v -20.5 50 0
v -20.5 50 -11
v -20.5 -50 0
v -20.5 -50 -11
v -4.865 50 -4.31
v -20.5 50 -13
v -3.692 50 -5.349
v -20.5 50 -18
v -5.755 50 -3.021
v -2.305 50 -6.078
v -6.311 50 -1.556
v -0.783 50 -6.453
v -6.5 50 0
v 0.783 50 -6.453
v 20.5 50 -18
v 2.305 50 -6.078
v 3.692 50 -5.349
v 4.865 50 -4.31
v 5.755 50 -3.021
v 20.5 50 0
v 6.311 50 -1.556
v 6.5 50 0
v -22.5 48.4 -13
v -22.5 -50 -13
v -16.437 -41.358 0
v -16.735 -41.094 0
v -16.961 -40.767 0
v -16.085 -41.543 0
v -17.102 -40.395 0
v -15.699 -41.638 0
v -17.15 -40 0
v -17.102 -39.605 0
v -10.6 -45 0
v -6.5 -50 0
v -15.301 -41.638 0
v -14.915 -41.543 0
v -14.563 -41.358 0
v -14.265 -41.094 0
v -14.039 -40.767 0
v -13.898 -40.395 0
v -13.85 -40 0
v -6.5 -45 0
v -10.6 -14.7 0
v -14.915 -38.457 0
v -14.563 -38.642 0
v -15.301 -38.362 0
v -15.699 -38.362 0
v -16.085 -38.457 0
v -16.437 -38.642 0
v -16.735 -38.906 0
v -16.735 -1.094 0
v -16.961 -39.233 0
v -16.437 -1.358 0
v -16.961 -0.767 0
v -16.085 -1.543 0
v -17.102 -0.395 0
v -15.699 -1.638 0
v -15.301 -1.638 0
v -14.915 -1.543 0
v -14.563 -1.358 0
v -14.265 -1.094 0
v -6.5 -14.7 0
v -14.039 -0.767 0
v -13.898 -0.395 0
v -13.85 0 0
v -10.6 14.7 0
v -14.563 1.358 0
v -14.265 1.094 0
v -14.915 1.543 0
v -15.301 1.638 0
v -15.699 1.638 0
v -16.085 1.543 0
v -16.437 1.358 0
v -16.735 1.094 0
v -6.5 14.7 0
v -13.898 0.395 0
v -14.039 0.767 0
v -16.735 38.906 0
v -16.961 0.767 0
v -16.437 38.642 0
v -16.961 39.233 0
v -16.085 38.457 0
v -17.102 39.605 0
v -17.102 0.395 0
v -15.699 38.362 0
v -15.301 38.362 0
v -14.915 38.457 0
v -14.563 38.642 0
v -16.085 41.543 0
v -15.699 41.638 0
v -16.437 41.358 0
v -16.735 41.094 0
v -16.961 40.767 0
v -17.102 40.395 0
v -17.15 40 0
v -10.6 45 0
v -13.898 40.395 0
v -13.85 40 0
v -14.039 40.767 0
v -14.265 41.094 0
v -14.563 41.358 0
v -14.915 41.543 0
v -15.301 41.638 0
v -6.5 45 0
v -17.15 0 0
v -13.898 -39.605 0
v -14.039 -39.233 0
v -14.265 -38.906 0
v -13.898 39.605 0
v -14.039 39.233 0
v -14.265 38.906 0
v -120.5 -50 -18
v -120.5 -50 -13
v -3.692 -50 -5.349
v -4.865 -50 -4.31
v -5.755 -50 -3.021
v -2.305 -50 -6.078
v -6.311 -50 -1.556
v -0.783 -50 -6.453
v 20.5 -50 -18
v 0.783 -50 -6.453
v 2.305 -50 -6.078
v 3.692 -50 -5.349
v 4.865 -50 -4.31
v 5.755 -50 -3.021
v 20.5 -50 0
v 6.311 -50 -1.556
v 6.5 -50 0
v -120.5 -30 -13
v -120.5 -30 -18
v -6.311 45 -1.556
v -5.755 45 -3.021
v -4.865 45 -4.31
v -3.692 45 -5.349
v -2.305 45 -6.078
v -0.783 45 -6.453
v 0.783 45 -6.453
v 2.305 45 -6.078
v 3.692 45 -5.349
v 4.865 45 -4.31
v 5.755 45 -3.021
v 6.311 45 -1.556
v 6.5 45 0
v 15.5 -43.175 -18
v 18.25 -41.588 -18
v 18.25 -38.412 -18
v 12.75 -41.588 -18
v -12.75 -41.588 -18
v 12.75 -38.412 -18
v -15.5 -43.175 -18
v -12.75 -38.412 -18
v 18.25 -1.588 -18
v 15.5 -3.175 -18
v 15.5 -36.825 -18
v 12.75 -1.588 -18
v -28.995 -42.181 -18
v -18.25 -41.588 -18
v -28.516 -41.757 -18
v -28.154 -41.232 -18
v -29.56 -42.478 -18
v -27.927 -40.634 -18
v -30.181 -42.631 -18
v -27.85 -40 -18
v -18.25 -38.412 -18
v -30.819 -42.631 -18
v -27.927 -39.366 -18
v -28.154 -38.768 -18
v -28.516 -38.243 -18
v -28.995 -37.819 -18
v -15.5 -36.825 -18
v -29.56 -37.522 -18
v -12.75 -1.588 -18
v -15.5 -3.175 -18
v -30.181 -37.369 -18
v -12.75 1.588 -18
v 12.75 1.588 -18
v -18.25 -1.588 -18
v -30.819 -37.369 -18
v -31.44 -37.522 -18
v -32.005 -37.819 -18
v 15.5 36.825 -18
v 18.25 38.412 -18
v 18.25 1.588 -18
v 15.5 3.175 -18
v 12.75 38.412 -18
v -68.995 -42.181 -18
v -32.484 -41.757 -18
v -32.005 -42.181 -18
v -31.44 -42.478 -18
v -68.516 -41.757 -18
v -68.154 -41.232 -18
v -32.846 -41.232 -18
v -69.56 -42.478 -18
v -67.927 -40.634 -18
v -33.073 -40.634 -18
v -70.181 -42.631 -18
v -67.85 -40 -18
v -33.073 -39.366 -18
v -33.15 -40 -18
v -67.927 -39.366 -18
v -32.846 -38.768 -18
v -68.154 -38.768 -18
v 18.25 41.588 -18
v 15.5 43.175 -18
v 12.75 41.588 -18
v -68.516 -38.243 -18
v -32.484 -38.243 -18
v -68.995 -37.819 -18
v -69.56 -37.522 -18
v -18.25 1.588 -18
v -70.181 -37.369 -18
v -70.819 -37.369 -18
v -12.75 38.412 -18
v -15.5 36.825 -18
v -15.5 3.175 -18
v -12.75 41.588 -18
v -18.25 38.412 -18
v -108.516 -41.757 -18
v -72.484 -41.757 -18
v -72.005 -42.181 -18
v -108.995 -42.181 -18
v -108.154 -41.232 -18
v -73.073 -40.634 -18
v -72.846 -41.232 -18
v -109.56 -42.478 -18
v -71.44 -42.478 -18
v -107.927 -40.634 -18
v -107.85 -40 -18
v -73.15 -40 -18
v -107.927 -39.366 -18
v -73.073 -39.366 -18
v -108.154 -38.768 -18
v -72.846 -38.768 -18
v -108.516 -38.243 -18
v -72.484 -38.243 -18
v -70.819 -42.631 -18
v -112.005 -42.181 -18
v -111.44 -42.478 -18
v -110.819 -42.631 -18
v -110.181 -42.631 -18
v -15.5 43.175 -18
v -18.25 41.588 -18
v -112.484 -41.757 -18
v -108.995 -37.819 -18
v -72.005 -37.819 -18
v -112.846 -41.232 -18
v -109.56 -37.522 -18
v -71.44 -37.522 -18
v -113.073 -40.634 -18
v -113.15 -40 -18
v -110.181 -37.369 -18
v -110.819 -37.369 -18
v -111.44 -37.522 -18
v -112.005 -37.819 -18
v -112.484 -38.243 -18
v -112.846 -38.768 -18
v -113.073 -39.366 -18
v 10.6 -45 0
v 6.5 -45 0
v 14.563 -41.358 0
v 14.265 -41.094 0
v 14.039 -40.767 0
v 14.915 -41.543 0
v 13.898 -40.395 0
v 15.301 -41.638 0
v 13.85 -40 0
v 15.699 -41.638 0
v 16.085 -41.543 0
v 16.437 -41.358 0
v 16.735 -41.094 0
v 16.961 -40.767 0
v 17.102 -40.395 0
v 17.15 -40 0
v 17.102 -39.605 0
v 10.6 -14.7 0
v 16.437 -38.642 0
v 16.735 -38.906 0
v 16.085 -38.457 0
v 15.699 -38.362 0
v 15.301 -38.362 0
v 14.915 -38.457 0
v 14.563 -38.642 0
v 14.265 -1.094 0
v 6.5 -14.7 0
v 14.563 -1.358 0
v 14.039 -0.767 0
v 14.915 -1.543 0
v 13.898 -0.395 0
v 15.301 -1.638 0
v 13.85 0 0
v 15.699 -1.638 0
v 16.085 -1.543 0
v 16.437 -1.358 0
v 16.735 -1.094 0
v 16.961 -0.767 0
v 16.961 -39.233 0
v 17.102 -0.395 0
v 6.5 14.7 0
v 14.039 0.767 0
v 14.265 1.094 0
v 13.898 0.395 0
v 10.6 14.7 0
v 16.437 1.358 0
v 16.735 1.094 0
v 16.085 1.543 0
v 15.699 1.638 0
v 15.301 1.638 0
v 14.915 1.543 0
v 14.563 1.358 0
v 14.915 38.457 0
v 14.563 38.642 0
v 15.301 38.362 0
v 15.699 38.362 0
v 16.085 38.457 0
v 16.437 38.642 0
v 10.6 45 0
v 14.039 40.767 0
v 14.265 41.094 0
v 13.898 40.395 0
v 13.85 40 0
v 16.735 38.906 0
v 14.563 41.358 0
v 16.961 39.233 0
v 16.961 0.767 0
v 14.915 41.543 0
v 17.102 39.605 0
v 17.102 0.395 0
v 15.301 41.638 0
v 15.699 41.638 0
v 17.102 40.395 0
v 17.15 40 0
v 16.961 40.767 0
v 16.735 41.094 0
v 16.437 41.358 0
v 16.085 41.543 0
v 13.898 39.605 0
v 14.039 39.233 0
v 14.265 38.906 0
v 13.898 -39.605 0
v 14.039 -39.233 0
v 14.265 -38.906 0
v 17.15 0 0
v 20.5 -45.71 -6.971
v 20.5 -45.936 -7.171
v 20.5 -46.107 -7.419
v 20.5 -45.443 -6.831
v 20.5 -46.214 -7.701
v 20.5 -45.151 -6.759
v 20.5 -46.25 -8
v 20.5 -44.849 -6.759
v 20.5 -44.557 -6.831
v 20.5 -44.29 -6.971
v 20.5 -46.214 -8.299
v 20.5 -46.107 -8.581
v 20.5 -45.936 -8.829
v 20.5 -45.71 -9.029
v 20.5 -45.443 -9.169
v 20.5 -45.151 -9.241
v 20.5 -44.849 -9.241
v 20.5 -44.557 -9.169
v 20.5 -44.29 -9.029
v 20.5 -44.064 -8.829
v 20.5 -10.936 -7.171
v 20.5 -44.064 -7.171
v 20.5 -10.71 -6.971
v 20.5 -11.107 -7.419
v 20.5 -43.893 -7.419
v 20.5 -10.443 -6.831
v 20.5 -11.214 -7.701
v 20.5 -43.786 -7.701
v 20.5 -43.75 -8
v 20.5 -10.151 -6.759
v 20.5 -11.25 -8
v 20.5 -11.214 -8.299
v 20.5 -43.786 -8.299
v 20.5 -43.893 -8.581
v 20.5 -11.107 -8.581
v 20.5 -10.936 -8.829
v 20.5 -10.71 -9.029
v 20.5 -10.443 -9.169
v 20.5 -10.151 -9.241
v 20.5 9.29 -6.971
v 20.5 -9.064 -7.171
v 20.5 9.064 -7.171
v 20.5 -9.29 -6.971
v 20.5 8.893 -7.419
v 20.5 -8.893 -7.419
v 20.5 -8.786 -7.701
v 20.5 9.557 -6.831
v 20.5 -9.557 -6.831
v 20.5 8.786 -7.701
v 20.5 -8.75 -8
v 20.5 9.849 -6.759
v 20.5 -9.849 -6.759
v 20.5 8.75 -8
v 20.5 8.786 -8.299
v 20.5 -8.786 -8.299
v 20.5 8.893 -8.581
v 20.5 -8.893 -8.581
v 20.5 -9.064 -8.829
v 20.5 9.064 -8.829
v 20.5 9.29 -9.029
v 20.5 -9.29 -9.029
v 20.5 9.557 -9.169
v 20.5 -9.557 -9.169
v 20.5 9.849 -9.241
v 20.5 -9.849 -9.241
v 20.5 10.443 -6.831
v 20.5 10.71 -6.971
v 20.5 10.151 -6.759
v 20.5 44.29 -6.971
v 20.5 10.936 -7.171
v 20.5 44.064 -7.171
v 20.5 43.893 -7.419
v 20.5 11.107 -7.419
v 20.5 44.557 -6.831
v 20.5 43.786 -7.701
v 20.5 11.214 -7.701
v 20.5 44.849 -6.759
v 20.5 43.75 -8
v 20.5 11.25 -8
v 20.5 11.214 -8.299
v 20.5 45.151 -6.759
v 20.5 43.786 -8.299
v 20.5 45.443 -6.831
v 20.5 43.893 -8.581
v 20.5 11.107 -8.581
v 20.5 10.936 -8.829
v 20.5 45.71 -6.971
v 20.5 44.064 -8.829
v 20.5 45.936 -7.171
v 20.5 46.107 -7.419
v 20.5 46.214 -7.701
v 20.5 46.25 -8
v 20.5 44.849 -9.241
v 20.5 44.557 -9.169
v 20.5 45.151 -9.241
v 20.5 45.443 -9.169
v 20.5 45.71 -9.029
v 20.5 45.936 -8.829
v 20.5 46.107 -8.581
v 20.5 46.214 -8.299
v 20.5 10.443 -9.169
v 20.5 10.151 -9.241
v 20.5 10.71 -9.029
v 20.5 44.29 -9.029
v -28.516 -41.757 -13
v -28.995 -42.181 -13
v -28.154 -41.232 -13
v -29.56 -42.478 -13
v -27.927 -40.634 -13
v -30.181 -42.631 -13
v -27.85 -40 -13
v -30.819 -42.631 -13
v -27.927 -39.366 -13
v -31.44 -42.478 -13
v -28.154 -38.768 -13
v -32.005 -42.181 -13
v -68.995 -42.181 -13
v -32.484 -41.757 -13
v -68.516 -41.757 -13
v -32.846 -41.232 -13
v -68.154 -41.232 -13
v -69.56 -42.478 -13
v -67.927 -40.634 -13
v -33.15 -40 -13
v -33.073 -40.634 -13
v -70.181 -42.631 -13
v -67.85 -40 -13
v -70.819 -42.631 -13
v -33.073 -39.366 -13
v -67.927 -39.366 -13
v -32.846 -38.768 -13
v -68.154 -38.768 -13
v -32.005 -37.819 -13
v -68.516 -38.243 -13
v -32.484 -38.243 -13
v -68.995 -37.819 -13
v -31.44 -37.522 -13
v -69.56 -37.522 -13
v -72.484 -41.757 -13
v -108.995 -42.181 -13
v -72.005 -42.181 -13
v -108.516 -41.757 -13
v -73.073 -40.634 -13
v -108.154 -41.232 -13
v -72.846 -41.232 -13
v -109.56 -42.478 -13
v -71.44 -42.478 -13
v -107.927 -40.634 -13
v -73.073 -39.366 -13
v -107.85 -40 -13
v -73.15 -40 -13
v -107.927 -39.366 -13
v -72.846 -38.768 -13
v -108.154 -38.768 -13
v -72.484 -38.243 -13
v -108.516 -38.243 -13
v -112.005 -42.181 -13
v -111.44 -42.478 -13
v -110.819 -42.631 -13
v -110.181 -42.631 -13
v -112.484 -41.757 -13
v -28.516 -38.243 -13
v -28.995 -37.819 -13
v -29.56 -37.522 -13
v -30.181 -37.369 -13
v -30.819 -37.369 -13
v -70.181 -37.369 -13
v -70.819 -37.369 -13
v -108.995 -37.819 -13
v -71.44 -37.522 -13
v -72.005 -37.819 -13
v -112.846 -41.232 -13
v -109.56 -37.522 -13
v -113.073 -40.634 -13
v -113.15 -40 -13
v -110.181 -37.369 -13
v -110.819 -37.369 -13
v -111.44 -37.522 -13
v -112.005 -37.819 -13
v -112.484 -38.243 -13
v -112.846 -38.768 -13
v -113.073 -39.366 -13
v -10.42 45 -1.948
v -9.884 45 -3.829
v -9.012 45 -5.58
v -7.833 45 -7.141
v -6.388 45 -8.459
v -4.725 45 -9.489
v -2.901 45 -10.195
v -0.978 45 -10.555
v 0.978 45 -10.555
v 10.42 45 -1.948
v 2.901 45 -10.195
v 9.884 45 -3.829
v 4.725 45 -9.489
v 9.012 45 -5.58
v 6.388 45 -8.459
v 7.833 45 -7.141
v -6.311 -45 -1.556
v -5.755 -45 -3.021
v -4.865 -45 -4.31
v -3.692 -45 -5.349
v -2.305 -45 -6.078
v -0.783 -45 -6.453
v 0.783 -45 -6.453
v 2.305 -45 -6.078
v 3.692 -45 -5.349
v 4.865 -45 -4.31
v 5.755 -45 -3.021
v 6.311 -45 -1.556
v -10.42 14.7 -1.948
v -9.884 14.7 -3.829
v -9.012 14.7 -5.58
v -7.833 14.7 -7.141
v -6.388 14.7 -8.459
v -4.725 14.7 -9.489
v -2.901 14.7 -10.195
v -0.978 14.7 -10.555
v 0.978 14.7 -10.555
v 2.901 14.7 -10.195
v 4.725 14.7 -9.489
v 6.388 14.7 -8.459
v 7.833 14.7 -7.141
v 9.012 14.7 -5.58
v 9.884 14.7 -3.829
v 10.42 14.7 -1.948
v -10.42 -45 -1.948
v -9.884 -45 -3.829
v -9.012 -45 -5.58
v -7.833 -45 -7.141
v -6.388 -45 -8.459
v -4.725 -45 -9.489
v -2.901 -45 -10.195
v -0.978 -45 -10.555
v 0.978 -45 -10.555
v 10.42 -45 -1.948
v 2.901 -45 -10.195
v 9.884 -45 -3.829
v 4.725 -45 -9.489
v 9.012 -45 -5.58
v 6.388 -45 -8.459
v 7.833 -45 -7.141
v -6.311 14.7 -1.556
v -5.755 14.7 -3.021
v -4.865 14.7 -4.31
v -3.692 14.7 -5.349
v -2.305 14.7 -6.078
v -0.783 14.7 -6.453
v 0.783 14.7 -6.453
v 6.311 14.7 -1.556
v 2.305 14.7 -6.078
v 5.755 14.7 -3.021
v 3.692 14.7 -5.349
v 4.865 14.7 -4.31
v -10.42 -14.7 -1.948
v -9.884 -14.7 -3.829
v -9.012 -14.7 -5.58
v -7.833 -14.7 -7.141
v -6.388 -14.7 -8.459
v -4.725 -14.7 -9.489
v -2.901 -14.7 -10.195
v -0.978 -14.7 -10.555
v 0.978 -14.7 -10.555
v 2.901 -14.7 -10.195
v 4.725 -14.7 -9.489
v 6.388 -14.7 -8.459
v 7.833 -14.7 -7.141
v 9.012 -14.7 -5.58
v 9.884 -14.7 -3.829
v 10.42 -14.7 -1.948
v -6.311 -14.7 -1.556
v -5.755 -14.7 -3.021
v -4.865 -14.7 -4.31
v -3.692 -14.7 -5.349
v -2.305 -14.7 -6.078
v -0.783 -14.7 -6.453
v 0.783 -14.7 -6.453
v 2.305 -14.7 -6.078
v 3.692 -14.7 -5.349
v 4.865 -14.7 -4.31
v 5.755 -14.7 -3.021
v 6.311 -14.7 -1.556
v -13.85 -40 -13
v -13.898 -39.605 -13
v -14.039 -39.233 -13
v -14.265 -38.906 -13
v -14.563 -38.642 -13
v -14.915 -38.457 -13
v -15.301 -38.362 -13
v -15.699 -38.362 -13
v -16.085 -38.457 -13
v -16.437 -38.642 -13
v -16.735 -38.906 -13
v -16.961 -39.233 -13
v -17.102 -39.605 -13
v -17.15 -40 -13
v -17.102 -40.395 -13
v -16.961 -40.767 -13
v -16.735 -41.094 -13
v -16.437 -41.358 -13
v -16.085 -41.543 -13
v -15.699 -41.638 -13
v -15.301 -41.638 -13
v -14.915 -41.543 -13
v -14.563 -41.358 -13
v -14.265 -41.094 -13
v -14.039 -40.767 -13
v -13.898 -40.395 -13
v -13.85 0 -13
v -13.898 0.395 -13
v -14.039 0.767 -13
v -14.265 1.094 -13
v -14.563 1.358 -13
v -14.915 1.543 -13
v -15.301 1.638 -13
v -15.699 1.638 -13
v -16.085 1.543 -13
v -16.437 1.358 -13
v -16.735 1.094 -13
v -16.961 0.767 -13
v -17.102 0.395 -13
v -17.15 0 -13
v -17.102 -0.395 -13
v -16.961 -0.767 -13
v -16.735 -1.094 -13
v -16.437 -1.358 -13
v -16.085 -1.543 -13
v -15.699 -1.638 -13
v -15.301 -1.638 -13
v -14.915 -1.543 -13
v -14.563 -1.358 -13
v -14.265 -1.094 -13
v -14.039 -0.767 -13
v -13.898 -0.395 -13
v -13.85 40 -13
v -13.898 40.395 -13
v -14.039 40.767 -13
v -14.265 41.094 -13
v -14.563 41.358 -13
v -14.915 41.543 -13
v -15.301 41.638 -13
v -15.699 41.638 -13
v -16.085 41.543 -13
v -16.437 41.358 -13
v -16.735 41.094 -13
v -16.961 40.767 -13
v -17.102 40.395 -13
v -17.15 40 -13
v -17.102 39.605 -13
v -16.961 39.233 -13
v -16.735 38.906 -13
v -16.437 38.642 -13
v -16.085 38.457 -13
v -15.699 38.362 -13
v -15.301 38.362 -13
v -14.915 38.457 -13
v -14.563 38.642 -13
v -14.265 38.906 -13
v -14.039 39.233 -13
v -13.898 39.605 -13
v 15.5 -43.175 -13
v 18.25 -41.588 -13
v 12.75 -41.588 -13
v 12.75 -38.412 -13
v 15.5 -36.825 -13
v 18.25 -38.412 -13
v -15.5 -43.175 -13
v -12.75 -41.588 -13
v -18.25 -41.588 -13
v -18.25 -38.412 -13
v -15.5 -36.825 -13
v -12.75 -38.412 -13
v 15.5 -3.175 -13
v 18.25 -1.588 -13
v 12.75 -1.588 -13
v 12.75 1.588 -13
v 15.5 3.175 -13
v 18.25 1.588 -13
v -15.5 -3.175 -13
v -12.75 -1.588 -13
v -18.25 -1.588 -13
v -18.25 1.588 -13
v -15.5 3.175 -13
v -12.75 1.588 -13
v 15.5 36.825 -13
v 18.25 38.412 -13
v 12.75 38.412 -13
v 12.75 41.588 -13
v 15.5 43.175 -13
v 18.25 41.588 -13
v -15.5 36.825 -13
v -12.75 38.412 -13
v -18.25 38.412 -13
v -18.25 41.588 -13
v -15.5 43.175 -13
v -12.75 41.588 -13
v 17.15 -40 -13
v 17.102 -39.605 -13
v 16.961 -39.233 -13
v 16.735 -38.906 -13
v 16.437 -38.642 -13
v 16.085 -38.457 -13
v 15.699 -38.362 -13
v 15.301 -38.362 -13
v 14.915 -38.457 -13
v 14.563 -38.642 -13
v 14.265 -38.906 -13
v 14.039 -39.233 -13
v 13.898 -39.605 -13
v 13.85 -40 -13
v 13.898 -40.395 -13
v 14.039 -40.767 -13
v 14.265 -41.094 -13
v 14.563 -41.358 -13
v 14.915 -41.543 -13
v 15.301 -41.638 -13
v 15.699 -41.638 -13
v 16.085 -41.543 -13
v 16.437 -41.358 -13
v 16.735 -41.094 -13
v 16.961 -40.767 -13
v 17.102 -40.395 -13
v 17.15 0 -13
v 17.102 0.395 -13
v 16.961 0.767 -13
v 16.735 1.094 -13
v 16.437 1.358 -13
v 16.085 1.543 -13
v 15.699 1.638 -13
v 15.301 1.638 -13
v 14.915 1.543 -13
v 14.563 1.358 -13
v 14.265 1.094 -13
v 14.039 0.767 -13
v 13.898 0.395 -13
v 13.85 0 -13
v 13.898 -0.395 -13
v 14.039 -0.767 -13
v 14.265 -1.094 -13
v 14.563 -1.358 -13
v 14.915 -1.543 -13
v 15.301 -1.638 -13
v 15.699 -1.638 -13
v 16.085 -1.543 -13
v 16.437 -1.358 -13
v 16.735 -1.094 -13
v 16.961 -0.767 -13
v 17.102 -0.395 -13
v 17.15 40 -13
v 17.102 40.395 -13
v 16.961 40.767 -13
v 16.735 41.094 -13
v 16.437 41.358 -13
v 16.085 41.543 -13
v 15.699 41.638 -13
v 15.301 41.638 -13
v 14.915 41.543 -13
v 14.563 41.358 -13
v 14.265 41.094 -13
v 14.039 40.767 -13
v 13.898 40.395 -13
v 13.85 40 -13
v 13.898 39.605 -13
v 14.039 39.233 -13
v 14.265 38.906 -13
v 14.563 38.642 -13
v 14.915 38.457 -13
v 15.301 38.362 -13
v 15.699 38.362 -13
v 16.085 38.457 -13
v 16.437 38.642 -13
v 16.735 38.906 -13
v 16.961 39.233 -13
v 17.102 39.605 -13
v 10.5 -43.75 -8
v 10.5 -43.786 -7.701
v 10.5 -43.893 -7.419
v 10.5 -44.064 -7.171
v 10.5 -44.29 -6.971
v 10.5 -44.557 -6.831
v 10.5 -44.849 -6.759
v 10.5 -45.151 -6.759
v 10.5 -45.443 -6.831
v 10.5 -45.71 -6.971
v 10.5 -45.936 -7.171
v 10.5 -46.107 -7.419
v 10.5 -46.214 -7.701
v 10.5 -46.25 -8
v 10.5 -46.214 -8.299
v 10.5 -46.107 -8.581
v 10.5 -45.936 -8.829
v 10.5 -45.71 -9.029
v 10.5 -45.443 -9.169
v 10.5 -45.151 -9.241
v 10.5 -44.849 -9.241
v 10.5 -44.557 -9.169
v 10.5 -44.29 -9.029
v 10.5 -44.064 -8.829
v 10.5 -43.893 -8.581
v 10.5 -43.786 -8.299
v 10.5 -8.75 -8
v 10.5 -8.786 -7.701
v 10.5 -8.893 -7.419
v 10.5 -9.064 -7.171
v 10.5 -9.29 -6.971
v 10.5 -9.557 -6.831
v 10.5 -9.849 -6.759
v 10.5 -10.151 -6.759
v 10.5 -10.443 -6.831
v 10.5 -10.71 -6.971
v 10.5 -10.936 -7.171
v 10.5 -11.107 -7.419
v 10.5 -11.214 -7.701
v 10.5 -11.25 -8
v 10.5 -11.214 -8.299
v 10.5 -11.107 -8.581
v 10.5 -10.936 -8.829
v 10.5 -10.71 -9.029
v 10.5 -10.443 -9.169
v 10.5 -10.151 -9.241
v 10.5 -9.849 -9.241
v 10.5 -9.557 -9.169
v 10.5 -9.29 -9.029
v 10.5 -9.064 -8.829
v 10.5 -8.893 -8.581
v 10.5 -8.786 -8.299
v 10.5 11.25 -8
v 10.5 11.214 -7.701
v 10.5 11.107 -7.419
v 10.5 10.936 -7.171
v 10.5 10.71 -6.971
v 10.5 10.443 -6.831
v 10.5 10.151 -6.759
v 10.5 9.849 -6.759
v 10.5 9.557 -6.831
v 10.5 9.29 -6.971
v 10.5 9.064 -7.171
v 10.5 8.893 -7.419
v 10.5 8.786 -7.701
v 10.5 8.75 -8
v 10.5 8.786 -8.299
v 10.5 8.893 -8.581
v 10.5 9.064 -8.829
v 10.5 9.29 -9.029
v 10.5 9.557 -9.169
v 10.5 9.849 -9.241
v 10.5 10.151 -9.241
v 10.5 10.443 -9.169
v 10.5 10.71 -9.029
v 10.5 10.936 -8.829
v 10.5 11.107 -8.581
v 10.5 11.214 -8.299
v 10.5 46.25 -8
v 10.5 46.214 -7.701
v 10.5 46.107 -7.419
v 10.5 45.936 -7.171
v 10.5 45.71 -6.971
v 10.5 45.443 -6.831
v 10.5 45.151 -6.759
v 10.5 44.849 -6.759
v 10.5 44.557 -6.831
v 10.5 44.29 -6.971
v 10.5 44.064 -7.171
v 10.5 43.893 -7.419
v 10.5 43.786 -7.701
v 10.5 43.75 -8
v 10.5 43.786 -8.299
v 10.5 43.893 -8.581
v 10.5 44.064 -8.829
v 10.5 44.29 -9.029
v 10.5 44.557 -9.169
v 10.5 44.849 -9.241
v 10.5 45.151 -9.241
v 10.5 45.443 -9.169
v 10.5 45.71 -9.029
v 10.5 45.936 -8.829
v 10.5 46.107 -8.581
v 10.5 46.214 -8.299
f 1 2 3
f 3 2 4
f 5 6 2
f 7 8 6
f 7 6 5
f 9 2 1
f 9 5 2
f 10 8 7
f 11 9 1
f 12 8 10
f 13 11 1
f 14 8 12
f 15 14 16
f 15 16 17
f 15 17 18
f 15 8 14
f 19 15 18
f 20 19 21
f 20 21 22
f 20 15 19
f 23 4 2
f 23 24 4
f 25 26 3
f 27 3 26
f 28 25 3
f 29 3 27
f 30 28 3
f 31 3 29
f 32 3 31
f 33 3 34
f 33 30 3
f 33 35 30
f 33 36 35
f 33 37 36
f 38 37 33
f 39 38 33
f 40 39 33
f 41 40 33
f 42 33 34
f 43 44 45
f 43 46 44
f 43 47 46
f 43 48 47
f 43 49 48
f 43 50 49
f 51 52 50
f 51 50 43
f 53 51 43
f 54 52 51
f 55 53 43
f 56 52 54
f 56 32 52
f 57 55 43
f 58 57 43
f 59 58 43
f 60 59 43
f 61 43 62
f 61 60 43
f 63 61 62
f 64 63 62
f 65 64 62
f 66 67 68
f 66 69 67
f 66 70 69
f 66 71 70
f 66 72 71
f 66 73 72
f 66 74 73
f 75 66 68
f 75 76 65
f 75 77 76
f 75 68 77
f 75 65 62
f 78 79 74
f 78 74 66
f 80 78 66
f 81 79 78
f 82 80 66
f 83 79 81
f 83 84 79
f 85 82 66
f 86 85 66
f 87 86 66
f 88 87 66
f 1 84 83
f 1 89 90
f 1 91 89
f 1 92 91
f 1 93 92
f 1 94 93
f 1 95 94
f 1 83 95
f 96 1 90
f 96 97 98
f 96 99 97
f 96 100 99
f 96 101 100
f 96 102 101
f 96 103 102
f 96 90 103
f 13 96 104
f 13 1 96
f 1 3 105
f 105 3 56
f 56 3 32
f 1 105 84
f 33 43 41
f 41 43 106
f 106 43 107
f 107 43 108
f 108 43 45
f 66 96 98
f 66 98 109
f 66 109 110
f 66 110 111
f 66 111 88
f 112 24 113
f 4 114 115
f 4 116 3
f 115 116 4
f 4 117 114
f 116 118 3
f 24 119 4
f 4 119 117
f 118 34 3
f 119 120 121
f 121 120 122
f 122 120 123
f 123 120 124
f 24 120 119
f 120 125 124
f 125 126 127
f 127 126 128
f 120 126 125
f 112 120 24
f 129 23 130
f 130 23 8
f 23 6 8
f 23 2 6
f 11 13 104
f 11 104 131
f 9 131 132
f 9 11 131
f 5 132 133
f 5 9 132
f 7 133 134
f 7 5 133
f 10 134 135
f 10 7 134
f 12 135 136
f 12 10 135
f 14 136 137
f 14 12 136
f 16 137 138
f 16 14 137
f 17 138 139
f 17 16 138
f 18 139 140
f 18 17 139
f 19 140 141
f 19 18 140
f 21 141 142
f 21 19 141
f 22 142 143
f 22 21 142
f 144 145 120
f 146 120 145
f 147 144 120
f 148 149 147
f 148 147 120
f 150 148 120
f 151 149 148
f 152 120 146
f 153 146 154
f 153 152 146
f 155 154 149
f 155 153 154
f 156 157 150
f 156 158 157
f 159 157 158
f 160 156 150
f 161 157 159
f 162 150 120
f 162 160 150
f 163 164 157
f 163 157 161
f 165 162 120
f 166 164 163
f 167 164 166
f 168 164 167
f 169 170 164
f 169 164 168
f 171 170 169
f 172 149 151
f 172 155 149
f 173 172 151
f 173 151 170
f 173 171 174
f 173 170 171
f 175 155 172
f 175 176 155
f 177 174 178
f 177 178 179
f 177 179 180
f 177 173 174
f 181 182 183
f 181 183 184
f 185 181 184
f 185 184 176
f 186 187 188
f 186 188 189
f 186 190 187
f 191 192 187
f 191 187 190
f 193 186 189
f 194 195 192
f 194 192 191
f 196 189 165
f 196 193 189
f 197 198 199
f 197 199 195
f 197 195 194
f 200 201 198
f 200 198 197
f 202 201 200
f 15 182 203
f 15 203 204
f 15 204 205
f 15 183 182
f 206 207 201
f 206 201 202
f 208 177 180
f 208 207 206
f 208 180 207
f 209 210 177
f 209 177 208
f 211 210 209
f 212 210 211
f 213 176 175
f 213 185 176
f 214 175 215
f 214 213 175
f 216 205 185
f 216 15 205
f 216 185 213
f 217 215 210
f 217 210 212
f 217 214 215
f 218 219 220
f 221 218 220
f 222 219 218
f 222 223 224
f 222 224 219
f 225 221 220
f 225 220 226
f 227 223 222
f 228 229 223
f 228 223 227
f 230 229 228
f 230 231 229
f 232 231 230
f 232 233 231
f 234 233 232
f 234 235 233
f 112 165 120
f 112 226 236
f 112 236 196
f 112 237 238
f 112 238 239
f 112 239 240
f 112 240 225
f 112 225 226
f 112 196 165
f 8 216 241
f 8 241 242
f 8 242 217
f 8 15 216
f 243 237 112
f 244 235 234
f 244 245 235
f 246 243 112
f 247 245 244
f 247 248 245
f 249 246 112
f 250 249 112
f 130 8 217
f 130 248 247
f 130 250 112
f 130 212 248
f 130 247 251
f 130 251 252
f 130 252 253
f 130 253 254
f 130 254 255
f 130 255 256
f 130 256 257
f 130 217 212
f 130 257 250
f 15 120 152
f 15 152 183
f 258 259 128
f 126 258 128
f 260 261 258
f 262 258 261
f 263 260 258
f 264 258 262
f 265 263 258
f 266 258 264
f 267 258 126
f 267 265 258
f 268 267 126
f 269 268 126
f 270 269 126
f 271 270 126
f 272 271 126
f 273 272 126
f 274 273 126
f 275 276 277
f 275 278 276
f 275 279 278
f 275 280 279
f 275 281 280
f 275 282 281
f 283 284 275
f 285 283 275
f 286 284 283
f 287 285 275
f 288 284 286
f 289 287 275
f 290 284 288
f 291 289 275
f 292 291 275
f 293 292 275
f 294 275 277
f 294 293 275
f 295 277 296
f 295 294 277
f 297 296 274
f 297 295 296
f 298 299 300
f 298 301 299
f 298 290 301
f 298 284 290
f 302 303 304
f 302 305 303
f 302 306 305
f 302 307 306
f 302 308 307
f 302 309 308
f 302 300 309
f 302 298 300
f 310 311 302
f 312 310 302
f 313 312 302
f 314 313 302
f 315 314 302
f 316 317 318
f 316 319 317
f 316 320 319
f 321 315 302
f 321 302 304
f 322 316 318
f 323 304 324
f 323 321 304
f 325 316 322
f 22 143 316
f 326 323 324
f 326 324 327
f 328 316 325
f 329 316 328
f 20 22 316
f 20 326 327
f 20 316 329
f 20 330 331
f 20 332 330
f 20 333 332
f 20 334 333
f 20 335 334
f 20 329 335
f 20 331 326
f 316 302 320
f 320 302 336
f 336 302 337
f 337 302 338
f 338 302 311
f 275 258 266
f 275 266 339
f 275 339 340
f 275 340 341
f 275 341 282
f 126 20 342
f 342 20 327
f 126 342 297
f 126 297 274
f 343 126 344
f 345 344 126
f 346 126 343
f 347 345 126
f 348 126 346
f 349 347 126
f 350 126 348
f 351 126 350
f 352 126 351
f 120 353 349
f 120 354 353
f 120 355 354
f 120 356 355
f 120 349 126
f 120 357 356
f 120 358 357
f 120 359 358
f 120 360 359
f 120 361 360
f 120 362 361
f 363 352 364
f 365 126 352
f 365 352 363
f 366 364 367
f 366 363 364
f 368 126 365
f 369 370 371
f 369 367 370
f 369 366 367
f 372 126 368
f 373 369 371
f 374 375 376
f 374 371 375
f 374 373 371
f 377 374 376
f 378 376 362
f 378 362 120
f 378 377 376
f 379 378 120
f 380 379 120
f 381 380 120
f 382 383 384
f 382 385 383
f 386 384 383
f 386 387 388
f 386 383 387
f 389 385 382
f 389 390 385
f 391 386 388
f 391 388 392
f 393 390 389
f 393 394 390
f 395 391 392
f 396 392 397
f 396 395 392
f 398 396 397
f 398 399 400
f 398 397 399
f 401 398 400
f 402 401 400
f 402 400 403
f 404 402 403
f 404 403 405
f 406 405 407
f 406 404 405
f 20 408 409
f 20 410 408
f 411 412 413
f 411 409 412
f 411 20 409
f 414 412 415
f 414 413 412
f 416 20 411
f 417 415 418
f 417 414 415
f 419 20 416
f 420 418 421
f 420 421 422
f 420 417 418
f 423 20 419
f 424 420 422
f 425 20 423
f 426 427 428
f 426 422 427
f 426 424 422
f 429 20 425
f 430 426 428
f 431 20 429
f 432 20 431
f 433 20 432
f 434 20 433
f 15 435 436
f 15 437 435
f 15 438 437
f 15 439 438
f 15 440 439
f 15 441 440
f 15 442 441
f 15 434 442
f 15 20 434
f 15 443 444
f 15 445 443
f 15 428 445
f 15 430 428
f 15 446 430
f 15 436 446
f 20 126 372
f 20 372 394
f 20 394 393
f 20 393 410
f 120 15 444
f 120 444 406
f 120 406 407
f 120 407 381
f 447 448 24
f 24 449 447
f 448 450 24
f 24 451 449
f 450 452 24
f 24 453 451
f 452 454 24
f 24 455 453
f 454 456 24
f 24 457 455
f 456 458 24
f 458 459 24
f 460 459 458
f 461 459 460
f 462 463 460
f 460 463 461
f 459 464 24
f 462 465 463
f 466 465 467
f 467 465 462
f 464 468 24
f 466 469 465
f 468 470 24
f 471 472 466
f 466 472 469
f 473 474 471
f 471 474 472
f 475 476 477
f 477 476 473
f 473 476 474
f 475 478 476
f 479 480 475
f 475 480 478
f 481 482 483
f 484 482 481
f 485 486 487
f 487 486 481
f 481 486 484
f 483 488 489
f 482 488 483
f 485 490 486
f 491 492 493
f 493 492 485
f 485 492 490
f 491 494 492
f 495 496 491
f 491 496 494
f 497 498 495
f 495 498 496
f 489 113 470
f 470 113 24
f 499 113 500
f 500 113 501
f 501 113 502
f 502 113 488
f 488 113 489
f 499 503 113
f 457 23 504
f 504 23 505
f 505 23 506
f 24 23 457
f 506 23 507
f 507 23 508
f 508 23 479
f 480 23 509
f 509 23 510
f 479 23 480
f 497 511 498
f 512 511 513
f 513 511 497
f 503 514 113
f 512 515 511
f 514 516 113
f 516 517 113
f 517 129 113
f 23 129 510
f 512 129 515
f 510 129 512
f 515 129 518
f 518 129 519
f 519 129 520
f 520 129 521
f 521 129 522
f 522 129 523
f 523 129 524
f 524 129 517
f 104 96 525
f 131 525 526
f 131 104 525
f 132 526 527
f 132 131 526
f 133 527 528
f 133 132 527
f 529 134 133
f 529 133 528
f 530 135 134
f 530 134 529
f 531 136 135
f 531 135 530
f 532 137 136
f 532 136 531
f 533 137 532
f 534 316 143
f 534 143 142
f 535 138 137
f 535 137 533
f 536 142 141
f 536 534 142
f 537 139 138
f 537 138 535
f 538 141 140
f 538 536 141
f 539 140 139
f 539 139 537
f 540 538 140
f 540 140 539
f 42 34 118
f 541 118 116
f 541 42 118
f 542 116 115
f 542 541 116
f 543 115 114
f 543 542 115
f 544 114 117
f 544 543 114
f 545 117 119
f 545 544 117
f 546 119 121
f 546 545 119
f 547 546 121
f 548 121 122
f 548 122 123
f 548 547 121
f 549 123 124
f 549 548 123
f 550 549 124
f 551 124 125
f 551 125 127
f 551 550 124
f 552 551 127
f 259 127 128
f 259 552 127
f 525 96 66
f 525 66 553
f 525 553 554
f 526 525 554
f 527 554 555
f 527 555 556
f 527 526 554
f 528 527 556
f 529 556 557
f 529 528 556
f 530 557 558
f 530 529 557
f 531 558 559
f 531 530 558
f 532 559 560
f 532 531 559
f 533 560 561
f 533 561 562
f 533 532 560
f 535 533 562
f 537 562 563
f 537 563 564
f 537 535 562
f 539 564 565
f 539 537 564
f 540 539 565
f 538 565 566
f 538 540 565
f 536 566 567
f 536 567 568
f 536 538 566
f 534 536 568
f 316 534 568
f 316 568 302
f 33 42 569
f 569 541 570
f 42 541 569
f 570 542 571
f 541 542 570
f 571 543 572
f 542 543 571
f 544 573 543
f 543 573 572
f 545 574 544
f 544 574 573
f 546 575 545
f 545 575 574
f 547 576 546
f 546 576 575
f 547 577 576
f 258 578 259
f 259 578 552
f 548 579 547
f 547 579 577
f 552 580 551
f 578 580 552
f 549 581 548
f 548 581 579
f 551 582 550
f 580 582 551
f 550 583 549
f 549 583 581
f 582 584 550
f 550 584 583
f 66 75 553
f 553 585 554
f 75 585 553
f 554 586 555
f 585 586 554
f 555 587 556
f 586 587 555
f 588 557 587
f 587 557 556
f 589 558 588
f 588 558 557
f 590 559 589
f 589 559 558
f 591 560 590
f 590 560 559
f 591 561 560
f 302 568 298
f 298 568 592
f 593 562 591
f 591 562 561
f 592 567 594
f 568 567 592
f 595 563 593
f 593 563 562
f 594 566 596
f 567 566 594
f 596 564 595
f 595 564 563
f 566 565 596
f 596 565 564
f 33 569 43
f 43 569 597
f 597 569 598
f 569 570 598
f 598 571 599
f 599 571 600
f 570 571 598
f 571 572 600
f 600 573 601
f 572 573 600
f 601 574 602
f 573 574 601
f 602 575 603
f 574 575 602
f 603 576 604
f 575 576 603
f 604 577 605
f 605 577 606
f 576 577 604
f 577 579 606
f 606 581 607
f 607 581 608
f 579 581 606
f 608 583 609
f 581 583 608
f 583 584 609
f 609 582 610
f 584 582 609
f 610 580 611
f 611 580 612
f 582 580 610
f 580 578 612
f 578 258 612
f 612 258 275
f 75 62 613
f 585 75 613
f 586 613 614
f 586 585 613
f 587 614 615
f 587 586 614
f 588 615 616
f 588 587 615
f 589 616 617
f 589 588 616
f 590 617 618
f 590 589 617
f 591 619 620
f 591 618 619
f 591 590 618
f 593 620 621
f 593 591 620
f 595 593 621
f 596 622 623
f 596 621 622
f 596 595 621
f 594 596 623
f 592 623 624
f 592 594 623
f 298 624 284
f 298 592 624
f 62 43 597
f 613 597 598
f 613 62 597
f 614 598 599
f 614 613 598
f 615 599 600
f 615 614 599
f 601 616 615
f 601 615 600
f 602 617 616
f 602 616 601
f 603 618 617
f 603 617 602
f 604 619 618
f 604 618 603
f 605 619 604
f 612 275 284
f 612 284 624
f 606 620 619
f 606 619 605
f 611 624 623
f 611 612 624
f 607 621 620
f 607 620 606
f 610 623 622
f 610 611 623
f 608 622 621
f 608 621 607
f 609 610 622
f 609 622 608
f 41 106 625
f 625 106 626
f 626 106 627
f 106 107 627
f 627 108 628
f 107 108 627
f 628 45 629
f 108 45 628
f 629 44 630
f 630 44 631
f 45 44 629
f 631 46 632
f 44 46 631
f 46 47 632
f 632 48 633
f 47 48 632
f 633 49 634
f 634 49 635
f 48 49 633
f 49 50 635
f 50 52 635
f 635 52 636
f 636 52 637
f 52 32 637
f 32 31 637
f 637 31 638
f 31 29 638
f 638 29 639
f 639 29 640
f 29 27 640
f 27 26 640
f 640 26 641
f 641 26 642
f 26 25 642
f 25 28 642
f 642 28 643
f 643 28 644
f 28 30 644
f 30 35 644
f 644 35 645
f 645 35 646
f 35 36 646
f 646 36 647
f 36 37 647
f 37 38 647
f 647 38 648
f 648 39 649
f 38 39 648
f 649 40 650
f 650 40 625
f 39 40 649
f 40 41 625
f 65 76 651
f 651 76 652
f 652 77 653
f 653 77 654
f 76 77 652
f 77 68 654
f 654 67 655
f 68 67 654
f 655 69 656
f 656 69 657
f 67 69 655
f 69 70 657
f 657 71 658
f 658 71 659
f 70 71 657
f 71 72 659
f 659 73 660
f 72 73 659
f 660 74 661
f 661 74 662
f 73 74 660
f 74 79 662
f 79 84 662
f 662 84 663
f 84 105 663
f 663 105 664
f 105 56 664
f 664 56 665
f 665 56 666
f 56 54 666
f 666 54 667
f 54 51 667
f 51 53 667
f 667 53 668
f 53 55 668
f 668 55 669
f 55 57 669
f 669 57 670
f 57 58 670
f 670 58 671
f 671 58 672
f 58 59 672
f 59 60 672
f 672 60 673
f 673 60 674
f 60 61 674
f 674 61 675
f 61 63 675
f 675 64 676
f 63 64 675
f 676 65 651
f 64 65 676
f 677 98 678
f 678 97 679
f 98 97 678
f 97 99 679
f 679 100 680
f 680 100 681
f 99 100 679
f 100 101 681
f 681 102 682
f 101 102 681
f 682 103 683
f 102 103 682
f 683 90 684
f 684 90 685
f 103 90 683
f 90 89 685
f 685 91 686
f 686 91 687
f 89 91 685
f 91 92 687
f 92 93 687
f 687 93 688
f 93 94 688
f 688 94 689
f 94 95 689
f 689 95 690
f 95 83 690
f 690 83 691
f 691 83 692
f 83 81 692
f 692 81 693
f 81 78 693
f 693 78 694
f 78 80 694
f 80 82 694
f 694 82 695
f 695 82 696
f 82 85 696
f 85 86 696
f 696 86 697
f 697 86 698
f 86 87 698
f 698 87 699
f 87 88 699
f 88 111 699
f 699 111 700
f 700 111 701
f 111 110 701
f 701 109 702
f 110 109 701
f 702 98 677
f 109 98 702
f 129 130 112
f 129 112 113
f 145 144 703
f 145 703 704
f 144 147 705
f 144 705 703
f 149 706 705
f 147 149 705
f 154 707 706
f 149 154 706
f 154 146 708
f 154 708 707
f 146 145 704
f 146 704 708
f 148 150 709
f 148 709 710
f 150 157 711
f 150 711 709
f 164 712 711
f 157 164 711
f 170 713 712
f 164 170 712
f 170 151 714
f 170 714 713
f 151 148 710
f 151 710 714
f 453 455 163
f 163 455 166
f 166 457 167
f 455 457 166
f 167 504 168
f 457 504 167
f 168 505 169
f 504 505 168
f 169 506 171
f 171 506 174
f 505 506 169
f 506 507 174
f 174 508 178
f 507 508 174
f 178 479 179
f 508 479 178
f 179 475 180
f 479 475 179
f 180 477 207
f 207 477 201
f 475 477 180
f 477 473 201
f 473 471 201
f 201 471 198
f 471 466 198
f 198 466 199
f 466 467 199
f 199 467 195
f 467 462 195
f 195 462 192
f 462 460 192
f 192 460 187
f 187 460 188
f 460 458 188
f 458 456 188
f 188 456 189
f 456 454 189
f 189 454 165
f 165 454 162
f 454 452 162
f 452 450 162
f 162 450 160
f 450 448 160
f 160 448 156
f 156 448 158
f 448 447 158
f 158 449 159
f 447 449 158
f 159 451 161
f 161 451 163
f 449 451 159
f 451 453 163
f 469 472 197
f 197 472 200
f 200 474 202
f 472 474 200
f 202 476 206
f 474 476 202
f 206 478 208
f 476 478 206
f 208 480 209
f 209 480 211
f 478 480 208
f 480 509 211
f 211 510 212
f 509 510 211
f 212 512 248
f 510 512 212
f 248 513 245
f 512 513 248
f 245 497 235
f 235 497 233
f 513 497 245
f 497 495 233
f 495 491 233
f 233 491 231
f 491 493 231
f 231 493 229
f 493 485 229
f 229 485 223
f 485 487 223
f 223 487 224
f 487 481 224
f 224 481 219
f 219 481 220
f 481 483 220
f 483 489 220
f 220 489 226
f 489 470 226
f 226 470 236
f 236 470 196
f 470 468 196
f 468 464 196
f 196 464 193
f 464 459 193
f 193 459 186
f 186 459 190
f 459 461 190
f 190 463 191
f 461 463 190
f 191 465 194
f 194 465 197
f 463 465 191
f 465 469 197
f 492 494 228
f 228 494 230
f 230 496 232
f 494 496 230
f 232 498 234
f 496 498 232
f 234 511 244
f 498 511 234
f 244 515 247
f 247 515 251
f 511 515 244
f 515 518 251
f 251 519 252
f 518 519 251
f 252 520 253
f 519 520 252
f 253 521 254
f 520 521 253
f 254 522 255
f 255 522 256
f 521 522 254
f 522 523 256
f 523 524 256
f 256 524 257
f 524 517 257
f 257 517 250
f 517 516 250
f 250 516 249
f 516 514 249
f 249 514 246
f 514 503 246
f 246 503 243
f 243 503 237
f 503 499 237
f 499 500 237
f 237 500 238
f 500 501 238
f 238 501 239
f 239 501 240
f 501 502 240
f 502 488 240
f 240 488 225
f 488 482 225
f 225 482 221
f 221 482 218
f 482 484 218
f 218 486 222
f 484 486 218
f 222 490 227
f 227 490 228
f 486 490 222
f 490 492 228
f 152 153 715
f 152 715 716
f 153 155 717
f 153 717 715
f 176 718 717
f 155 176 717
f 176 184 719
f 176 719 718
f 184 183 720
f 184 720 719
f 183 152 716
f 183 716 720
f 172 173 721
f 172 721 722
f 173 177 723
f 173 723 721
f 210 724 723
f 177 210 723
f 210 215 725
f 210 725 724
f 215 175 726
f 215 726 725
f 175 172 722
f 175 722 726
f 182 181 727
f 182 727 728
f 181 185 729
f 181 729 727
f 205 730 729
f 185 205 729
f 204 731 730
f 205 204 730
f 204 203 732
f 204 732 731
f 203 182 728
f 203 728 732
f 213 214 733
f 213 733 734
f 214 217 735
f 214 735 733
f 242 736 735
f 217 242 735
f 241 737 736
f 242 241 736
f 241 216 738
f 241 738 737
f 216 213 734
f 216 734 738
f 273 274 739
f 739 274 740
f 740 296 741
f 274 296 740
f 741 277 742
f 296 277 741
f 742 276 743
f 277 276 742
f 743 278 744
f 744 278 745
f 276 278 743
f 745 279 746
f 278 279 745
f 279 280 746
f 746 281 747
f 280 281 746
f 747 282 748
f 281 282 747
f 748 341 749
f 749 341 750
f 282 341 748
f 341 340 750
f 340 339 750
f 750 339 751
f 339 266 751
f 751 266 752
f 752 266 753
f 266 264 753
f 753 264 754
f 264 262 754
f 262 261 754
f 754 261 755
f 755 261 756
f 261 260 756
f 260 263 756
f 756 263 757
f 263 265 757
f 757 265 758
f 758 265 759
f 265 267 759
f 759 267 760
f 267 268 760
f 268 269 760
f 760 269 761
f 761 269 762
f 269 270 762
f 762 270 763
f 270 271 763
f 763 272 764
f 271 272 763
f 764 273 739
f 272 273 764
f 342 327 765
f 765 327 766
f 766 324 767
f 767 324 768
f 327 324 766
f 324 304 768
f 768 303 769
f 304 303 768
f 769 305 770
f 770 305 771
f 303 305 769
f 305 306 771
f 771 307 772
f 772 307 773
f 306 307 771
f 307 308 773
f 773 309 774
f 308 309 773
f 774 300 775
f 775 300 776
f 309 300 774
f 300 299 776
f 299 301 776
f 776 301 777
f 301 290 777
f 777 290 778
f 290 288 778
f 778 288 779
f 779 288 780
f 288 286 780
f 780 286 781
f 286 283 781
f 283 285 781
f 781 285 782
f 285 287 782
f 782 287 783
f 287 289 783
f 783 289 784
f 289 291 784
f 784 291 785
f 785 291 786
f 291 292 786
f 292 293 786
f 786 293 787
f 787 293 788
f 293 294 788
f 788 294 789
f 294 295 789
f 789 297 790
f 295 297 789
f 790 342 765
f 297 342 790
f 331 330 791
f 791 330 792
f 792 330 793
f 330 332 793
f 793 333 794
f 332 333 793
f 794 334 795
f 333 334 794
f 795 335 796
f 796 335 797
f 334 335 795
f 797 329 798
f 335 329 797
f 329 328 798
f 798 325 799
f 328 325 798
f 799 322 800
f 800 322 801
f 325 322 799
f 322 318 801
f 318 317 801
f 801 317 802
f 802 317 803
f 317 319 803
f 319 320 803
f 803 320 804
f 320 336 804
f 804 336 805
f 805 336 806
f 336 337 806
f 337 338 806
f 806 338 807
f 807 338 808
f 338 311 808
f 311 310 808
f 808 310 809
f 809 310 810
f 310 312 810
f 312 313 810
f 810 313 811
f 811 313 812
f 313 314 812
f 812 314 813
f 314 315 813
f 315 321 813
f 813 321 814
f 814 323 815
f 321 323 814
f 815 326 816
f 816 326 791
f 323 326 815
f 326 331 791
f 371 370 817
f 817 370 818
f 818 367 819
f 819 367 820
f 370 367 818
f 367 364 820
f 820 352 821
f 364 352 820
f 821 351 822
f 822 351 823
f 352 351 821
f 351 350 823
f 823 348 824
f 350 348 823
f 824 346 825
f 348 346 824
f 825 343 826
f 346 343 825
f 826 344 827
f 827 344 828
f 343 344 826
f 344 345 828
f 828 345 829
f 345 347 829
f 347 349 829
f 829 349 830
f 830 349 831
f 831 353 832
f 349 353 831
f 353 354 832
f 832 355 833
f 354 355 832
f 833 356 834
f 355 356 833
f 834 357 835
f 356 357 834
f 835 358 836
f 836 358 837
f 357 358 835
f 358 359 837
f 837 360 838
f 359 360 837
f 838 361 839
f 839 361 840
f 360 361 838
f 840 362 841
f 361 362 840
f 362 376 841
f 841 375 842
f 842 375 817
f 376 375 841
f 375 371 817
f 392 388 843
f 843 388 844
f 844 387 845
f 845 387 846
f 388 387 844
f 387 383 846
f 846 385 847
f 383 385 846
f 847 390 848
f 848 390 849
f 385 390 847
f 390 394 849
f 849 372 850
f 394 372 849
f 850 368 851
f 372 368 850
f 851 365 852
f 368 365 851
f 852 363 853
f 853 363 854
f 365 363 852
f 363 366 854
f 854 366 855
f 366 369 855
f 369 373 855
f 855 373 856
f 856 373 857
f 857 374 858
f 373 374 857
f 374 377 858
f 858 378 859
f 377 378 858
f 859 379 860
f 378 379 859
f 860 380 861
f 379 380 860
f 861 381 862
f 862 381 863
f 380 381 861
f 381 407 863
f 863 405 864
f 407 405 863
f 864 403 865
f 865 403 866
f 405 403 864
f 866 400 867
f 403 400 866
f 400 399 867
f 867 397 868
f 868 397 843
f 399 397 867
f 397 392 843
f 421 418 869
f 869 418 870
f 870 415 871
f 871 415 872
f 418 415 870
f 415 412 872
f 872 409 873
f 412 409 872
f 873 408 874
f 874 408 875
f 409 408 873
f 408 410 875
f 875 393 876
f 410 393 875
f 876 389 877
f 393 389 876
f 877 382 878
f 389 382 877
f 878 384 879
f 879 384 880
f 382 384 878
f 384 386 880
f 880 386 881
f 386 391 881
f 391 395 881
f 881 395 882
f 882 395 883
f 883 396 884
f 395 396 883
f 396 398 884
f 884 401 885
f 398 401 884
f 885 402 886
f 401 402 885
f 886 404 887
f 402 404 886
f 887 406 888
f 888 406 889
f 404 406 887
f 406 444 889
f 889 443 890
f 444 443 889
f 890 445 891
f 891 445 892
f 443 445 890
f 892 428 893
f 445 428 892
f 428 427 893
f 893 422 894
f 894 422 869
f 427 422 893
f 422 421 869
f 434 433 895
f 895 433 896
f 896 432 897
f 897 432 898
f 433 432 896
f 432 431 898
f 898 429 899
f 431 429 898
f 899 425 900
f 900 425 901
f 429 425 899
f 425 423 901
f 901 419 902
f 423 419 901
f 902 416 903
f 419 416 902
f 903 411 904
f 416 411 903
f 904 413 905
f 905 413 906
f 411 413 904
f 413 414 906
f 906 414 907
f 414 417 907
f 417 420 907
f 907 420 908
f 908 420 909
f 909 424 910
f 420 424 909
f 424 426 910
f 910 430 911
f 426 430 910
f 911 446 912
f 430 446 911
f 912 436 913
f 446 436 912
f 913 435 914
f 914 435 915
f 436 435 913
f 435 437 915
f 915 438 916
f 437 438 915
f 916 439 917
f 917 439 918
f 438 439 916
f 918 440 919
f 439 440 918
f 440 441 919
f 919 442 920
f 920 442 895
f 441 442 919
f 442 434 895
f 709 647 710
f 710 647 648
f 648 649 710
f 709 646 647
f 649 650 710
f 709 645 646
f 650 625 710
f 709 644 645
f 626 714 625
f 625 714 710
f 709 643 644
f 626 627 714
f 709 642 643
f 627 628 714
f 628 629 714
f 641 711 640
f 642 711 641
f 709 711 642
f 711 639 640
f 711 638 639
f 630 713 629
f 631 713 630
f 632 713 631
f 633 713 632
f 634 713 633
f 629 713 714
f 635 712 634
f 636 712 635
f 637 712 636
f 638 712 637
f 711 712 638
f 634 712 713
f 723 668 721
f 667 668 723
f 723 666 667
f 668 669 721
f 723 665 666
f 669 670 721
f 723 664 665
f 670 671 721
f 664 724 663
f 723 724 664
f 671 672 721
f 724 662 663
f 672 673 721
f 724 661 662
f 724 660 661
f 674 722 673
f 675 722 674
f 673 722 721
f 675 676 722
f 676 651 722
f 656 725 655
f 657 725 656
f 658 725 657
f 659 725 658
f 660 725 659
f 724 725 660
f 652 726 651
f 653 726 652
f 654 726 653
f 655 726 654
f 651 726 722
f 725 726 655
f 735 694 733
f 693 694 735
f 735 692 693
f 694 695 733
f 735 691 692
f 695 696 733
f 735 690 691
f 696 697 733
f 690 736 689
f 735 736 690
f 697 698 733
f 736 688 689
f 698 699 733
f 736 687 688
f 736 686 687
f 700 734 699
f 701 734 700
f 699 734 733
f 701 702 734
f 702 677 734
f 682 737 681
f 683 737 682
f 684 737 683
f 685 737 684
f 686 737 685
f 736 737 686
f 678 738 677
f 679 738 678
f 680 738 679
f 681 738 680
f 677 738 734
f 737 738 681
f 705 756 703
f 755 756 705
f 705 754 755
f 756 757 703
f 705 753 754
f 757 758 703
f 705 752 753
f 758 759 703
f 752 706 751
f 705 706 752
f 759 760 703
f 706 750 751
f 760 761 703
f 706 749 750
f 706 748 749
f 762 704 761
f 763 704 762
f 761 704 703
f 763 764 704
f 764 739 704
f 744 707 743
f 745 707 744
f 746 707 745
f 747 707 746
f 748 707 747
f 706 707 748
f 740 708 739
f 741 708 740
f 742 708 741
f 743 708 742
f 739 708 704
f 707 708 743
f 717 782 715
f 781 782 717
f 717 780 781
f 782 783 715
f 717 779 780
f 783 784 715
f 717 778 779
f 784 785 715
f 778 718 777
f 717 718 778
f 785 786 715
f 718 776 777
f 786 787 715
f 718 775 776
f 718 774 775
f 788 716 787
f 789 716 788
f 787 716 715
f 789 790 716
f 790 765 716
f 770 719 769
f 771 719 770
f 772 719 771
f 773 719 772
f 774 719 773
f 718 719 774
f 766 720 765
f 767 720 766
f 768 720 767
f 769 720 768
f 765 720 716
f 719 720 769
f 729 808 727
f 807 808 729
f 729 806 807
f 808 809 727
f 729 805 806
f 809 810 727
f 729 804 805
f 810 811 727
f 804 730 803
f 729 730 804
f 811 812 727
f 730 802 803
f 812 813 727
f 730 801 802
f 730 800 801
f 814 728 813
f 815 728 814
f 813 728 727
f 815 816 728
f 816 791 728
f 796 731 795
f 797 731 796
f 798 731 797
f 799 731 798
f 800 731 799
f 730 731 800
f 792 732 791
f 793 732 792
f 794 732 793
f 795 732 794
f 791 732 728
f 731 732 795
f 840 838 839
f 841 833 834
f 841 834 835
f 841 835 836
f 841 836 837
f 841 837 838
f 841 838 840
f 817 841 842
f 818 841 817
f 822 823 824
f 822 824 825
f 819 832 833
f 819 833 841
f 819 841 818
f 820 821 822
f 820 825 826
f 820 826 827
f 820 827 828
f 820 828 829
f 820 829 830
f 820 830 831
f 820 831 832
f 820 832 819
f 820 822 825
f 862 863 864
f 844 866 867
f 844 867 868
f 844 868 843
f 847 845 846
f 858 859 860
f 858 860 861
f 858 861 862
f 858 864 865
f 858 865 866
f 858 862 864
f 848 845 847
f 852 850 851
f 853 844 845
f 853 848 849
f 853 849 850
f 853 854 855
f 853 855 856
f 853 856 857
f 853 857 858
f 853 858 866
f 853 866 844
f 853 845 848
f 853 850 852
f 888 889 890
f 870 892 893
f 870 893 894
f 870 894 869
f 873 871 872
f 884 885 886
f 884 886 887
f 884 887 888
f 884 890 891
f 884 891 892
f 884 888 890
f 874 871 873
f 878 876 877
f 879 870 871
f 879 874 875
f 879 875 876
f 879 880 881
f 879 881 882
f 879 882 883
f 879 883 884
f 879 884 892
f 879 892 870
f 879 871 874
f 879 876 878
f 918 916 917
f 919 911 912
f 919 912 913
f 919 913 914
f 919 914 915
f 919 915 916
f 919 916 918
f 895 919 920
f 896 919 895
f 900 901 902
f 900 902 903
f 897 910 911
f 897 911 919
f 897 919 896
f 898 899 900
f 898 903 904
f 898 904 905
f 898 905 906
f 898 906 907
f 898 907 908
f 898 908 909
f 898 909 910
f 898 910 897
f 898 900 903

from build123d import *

# Parameters (mm, degrees)
PAD_DEPTH       = 50
POCKET_DEPTH    = 18.001
SKETCH003_R     = 10.6
POCKET001_DEPTH = 30.3
SKETCH004_R     = 10.6
POCKET002_DEPTH = 30.3
SKETCH005_R     = 1.65
SKETCH005_R_2   = 2.65
POCKET007_DEPTH = 18.001
POCKET008_DEPTH = 5
SKETCH006_R     = 1.25
POCKET009_DEPTH = 10
CHAMFER_SIZE    = 2


with BuildPart() as part:
    # Sketch001 → Pad (new body, symmetric)
    with BuildSketch(Plane.XZ):
        with BuildLine():
            Line((-20.5, 0), (-6.5, 0))
            ThreePointArc((-6.5, 0), (0, -6.5), (6.5, 0))
            Line((6.5, 0), (20.5, 0))
            Line((20.5, 0), (20.5, -18))
            Line((20.5, -18), (-120.5, -18))
            Line((-120.5, -18), (-120.5, -13))
            Line((-20.5, -13), (-120.5, -13))
            Line((-20.5, 0), (-20.5, -13))
        make_face()
    extrude(amount=PAD_DEPTH, both=True)

    # Sketch002 → Pocket (cut, through all)
    with BuildSketch(Plane.XY):
        Polygon((-20.5, 50), (-120.5, 50), (-120.5, -30), align=None)
    extrude(amount=-POCKET_DEPTH, mode=Mode.SUBTRACT)

    # Sketch003 (on DatumPlane) → Pocket001 (cut)
    with BuildSketch(Plane.XZ.offset(45)):
        Circle(SKETCH003_R)
    extrude(amount=-POCKET001_DEPTH, mode=Mode.SUBTRACT)

    # Sketch004 (on DatumPlane) → Pocket002 (cut)
    with BuildSketch(Plane.XZ.offset(-45)):
        Circle(SKETCH004_R)
    extrude(amount=POCKET002_DEPTH, mode=Mode.SUBTRACT)

    # Sketch005 → Pocket007 (cut, through all)
    with BuildSketch(Plane.XY):
        with Locations((-15.5, -40)):
            Circle(SKETCH005_R)
        with Locations((15.5, -40)):
            Circle(SKETCH005_R)
        with Locations((15.5, 0)):
            Circle(SKETCH005_R)
        with Locations((15.5, 40)):
            Circle(SKETCH005_R)
        with Locations((-15.5, 40)):
            Circle(SKETCH005_R)
        with Locations((-15.5, 0)):
            Circle(SKETCH005_R)
        with Locations((-110.5, -40)):
            Circle(SKETCH005_R_2)
        with Locations((-70.5, -40)):
            Circle(SKETCH005_R_2)
        with Locations((-30.5, -40)):
            Circle(SKETCH005_R_2)
    extrude(amount=-POCKET007_DEPTH, mode=Mode.SUBTRACT)

    # Sketch (on DatumPlane) → Pocket008 (cut)
    with BuildSketch(Plane.XY.offset(-18)):
        Polygon((-12.75, 38.412287), (-12.75, 41.587713), (-15.5, 43.175426), (-18.25, 41.587713), (-18.25, 38.412287), (-15.5, 36.824574), align=None)
        Polygon((18.25, 38.412287), (18.25, 41.587713), (15.5, 43.175426), (12.75, 41.587713), (12.75, 38.412287), (15.5, 36.824574), align=None)
        Polygon((-12.75, -1.587713), (-12.75, 1.587713), (-15.5, 3.175426), (-18.25, 1.587713), (-18.25, -1.587713), (-15.5, -3.175426), align=None)
        Polygon((18.25, -1.587713), (18.25, 1.587713), (15.5, 3.175426), (12.75, 1.587713), (12.75, -1.587713), (15.5, -3.175426), align=None)
        Polygon((-12.75, -41.587713), (-12.75, -38.412287), (-15.5, -36.824574), (-18.25, -38.412287), (-18.25, -41.587713), (-15.5, -43.175426), align=None)
        Polygon((18.25, -41.587713), (18.25, -38.412287), (15.5, -36.824574), (12.75, -38.412287), (12.75, -41.587713), (15.5, -43.175426), align=None)
    extrude(amount=POCKET008_DEPTH, mode=Mode.SUBTRACT)

    # Sketch006 (on DatumPlane) → Pocket009 (cut)
    with BuildSketch(Plane.YZ.offset(20.5)):
        with Locations((-45, -8)):
            Circle(SKETCH006_R)
        with Locations((-10, -8)):
            Circle(SKETCH006_R)
        with Locations((10, -8)):
            Circle(SKETCH006_R)
        with Locations((45, -8)):
            Circle(SKETCH006_R)
    extrude(amount=-POCKET009_DEPTH, mode=Mode.SUBTRACT)

    # Chamfer
    chamfer_edges = [part.edges().sort_by_distance(p)[0] for p in [
        (-20.5, 0, -13),
    ]]
    chamfer(chamfer_edges, length=CHAMFER_SIZE)


solid = part.part
